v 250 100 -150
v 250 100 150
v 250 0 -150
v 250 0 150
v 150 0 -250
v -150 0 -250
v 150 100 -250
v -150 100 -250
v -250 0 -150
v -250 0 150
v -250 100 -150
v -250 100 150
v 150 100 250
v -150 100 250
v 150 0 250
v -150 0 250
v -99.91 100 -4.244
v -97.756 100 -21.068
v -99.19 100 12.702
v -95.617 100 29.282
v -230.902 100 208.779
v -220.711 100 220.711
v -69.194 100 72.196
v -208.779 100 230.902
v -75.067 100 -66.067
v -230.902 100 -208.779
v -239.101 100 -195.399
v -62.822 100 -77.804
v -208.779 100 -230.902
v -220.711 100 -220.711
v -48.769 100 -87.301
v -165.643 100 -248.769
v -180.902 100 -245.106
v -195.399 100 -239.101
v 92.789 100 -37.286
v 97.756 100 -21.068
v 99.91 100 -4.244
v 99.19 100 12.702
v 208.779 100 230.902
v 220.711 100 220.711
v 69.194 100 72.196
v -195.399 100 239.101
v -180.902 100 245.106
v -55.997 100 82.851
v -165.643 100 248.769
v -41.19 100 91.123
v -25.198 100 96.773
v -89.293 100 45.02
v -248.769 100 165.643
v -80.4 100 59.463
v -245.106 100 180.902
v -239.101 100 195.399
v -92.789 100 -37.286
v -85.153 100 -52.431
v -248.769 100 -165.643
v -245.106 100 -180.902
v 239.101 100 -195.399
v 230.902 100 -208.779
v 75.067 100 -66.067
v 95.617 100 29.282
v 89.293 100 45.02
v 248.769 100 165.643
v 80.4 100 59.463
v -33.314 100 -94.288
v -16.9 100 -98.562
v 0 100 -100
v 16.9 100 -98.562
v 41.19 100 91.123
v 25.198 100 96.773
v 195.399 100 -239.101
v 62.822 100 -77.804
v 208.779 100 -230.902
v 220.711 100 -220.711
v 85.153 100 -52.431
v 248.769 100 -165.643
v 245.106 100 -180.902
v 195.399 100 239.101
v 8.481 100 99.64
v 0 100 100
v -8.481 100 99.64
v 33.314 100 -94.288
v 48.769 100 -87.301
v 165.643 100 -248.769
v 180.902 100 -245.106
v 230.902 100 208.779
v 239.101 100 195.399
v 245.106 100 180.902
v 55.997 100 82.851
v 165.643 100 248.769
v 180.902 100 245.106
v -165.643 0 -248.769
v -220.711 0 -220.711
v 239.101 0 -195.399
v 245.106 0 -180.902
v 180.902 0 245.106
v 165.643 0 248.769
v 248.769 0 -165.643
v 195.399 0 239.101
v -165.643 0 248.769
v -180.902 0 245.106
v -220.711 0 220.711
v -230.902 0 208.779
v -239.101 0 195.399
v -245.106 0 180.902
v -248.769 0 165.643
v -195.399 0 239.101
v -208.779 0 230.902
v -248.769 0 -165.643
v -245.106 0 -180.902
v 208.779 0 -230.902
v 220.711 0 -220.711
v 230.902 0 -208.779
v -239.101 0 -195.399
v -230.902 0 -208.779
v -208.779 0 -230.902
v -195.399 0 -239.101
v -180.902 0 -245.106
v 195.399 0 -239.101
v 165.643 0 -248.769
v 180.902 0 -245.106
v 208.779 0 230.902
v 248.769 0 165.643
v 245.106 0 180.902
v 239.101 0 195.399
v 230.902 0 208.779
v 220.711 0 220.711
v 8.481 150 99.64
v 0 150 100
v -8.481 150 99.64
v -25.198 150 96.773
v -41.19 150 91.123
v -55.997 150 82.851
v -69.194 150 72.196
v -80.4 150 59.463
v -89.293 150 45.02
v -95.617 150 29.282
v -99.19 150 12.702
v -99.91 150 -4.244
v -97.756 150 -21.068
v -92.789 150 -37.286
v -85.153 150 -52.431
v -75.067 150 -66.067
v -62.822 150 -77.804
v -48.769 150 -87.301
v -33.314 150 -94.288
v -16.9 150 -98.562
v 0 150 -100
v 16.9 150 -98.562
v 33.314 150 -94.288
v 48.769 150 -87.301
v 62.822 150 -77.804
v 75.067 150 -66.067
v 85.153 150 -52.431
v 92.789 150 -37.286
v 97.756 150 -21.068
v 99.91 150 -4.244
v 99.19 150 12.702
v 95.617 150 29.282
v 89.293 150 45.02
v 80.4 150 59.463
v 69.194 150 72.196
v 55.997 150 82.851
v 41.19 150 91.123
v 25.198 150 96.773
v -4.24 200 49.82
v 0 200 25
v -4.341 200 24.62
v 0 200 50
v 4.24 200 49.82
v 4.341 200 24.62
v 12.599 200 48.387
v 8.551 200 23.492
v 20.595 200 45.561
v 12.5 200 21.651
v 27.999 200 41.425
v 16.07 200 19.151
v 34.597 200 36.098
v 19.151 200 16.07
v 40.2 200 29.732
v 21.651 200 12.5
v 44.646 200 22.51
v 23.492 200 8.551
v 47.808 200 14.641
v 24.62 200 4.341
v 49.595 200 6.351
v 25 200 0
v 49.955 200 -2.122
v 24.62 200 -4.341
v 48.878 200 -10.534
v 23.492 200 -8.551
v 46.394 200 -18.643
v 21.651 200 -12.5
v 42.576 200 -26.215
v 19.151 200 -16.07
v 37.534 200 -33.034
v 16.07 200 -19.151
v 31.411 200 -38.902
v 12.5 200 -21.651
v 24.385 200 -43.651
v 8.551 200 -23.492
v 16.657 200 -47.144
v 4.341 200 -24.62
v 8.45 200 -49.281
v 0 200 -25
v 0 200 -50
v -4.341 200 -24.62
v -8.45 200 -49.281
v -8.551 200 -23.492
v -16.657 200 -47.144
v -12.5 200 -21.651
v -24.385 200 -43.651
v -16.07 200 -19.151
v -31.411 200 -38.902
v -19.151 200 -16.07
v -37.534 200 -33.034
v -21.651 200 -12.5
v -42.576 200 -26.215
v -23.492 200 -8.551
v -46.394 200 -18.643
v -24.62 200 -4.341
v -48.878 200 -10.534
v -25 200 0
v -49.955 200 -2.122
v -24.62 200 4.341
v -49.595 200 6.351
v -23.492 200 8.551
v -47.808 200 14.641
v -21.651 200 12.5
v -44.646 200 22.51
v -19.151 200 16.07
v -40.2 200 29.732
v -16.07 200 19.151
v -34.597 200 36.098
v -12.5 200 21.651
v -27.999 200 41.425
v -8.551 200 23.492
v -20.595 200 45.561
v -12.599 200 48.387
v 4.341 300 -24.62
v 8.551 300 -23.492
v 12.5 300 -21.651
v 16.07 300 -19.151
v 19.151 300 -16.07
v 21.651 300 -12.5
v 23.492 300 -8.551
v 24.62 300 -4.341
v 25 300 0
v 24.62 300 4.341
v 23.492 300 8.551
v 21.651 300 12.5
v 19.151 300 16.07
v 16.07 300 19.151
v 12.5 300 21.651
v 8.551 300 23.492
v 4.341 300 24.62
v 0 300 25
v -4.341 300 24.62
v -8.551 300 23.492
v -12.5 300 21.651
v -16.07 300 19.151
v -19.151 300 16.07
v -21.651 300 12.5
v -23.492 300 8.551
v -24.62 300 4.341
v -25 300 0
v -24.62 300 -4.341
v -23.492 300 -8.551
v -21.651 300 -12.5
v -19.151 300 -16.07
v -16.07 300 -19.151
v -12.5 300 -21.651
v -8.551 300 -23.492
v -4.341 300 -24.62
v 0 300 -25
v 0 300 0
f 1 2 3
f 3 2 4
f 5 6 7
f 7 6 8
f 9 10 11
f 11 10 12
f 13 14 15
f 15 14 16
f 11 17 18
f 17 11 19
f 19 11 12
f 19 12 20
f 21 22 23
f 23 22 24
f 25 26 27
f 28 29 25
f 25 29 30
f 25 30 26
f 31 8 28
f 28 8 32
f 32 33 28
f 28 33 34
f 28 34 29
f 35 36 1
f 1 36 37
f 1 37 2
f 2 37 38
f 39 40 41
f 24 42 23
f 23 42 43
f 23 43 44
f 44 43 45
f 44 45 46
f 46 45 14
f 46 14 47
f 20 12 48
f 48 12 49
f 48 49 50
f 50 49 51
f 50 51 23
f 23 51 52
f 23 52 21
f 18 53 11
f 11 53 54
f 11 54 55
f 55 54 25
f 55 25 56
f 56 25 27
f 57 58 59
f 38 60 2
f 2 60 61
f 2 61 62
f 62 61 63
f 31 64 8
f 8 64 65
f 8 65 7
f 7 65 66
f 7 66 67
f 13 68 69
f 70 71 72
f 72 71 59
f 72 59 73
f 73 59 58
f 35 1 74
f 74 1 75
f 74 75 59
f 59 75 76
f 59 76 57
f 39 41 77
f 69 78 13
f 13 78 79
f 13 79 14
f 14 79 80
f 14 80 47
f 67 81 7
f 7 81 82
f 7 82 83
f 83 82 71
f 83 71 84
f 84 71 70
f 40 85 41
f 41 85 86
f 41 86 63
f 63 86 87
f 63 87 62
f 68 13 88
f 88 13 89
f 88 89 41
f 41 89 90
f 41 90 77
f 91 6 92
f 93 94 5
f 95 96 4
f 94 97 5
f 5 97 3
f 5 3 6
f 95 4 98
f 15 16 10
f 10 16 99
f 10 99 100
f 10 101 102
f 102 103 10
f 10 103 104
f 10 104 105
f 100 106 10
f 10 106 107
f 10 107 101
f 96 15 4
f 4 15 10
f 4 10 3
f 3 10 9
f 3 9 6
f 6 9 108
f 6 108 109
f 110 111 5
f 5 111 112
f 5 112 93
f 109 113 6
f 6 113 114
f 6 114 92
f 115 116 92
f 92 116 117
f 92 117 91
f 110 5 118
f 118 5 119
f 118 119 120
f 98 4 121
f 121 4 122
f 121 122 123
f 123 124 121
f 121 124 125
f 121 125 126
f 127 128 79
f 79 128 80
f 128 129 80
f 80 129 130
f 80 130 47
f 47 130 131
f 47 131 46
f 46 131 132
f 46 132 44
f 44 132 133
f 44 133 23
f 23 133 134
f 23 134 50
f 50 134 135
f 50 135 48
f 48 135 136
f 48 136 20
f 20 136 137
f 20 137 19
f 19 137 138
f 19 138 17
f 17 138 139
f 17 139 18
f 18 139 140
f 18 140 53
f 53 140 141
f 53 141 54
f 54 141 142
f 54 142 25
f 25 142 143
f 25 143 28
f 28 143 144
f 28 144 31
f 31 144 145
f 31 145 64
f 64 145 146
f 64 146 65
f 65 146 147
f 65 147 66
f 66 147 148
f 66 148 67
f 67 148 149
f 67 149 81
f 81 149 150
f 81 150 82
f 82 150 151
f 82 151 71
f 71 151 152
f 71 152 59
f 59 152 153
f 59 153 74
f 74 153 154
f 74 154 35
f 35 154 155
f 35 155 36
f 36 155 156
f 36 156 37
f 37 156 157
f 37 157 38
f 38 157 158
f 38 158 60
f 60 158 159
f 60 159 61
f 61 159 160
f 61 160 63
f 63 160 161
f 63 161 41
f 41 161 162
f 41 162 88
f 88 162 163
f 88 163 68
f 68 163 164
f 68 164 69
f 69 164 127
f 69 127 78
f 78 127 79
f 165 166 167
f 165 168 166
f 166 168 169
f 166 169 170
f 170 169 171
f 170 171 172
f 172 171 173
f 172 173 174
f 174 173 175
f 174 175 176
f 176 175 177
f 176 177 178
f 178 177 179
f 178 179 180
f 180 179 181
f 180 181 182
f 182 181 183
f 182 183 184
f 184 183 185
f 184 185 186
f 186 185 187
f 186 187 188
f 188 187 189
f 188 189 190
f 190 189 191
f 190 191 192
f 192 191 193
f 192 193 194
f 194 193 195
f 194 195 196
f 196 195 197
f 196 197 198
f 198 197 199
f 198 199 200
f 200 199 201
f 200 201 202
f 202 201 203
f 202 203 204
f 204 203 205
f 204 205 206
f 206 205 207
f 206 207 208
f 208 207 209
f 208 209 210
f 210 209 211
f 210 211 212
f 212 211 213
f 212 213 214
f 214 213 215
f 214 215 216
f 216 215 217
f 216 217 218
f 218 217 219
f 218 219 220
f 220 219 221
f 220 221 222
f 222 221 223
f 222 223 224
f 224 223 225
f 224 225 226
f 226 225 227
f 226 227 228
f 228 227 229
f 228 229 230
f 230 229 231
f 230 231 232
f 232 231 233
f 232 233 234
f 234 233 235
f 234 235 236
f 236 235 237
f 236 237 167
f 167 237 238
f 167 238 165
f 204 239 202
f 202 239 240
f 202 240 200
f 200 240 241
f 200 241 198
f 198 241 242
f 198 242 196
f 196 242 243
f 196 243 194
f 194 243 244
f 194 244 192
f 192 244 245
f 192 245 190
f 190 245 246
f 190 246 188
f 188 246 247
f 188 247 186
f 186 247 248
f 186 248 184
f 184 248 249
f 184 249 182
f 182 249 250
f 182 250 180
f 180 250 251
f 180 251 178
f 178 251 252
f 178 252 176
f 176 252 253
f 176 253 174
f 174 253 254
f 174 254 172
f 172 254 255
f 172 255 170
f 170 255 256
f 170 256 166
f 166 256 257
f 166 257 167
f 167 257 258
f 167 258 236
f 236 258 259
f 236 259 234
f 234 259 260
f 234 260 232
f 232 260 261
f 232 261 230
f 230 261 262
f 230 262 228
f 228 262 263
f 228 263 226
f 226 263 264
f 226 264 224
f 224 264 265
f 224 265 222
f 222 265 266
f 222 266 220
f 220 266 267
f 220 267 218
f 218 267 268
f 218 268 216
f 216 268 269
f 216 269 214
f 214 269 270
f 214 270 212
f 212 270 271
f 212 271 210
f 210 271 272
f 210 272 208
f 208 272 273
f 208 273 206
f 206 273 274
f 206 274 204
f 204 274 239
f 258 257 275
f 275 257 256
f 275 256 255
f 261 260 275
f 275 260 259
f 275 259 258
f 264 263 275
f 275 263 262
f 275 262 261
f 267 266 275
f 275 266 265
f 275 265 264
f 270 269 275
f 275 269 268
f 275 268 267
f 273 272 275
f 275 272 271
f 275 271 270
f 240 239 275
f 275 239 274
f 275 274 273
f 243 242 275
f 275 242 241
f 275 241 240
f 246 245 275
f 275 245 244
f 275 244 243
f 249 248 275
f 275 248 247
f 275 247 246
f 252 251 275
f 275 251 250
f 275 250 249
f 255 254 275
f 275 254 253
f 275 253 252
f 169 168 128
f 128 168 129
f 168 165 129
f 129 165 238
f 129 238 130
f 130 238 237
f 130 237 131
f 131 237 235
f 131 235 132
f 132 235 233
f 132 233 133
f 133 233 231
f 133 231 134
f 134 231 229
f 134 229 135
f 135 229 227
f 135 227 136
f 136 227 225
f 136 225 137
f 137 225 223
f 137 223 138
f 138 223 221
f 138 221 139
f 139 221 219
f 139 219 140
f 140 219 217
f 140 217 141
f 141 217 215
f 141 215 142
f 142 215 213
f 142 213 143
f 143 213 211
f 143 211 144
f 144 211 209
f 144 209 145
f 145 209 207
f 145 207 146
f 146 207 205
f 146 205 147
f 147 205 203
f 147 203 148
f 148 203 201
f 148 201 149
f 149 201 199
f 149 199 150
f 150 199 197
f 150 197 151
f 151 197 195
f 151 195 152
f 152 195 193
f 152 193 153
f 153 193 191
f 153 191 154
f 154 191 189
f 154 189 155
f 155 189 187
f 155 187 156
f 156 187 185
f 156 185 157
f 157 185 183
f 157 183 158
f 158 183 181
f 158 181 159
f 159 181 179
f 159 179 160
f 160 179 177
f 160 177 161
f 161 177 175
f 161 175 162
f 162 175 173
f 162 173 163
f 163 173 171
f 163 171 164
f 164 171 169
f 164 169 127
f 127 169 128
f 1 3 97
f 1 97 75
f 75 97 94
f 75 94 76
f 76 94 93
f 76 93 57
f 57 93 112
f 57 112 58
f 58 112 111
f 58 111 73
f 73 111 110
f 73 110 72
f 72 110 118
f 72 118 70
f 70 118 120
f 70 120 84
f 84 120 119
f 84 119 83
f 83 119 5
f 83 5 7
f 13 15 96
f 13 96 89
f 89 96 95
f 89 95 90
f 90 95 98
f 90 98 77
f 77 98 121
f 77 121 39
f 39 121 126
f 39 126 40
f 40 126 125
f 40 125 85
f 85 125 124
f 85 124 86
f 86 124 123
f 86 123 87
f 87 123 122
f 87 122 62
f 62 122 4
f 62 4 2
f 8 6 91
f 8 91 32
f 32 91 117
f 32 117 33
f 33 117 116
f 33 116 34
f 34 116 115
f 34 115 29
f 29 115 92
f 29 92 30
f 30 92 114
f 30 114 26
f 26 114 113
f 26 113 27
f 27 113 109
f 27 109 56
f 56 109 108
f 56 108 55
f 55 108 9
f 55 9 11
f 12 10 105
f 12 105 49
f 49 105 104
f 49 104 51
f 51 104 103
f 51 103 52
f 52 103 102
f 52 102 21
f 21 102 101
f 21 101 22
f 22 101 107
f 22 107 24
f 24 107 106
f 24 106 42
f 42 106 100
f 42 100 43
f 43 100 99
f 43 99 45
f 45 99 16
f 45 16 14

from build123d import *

# Parameters (mm, degrees)
SKETCH1_W           = 500
SKETCH1_H           = 500
BOSS_EXTRUDE1_DEPTH = 100
SKETCH2_R           = 100
BOSS_EXTRUDE2_DEPTH = 100
SKETCH3_R           = 25
BOSS_EXTRUDE3_DEPTH = 100
CHAMFER1_SIZE       = 50
FILLET1_R           = 100


with BuildPart() as part:
    # Sketch1 → Boss-Extrude1 (new body)
    with BuildSketch(Plane(origin=(0, 0, 0), x_dir=(1, 0, 0), z_dir=(0, 1, 0))):
        Rectangle(SKETCH1_W, SKETCH1_H)
    extrude(amount=BOSS_EXTRUDE1_DEPTH)

    # Sketch2 → Boss-Extrude2 (add)
    with BuildSketch(Plane(origin=(0, 100, 0), x_dir=(1, 0, 0), z_dir=(0, 1, 0))):
        Circle(SKETCH2_R)
    extrude(amount=BOSS_EXTRUDE2_DEPTH)

    # Sketch3 → Boss-Extrude3 (add)
    with BuildSketch(Plane(origin=(0, 200, 0), x_dir=(1, 0, 0), z_dir=(0, 1, 0))):
        Circle(SKETCH3_R)
    extrude(amount=BOSS_EXTRUDE3_DEPTH)

    # Chamfer1
    chamfer1_edges = [part.edges().sort_by_distance(p)[0] for p in [
        (-100, 200, 0),
    ]]
    chamfer(chamfer1_edges, length=CHAMFER1_SIZE)

    # Fillet1
    fillet1_edges = [part.edges().sort_by_distance(p)[0] for p in [
        (250, 50, 250),
        (-250, 50, 250),
        (-250, 50, -250),
        (250, 50, -250),
    ]]
    fillet(fillet1_edges, radius=FILLET1_R)


solid = part.part
